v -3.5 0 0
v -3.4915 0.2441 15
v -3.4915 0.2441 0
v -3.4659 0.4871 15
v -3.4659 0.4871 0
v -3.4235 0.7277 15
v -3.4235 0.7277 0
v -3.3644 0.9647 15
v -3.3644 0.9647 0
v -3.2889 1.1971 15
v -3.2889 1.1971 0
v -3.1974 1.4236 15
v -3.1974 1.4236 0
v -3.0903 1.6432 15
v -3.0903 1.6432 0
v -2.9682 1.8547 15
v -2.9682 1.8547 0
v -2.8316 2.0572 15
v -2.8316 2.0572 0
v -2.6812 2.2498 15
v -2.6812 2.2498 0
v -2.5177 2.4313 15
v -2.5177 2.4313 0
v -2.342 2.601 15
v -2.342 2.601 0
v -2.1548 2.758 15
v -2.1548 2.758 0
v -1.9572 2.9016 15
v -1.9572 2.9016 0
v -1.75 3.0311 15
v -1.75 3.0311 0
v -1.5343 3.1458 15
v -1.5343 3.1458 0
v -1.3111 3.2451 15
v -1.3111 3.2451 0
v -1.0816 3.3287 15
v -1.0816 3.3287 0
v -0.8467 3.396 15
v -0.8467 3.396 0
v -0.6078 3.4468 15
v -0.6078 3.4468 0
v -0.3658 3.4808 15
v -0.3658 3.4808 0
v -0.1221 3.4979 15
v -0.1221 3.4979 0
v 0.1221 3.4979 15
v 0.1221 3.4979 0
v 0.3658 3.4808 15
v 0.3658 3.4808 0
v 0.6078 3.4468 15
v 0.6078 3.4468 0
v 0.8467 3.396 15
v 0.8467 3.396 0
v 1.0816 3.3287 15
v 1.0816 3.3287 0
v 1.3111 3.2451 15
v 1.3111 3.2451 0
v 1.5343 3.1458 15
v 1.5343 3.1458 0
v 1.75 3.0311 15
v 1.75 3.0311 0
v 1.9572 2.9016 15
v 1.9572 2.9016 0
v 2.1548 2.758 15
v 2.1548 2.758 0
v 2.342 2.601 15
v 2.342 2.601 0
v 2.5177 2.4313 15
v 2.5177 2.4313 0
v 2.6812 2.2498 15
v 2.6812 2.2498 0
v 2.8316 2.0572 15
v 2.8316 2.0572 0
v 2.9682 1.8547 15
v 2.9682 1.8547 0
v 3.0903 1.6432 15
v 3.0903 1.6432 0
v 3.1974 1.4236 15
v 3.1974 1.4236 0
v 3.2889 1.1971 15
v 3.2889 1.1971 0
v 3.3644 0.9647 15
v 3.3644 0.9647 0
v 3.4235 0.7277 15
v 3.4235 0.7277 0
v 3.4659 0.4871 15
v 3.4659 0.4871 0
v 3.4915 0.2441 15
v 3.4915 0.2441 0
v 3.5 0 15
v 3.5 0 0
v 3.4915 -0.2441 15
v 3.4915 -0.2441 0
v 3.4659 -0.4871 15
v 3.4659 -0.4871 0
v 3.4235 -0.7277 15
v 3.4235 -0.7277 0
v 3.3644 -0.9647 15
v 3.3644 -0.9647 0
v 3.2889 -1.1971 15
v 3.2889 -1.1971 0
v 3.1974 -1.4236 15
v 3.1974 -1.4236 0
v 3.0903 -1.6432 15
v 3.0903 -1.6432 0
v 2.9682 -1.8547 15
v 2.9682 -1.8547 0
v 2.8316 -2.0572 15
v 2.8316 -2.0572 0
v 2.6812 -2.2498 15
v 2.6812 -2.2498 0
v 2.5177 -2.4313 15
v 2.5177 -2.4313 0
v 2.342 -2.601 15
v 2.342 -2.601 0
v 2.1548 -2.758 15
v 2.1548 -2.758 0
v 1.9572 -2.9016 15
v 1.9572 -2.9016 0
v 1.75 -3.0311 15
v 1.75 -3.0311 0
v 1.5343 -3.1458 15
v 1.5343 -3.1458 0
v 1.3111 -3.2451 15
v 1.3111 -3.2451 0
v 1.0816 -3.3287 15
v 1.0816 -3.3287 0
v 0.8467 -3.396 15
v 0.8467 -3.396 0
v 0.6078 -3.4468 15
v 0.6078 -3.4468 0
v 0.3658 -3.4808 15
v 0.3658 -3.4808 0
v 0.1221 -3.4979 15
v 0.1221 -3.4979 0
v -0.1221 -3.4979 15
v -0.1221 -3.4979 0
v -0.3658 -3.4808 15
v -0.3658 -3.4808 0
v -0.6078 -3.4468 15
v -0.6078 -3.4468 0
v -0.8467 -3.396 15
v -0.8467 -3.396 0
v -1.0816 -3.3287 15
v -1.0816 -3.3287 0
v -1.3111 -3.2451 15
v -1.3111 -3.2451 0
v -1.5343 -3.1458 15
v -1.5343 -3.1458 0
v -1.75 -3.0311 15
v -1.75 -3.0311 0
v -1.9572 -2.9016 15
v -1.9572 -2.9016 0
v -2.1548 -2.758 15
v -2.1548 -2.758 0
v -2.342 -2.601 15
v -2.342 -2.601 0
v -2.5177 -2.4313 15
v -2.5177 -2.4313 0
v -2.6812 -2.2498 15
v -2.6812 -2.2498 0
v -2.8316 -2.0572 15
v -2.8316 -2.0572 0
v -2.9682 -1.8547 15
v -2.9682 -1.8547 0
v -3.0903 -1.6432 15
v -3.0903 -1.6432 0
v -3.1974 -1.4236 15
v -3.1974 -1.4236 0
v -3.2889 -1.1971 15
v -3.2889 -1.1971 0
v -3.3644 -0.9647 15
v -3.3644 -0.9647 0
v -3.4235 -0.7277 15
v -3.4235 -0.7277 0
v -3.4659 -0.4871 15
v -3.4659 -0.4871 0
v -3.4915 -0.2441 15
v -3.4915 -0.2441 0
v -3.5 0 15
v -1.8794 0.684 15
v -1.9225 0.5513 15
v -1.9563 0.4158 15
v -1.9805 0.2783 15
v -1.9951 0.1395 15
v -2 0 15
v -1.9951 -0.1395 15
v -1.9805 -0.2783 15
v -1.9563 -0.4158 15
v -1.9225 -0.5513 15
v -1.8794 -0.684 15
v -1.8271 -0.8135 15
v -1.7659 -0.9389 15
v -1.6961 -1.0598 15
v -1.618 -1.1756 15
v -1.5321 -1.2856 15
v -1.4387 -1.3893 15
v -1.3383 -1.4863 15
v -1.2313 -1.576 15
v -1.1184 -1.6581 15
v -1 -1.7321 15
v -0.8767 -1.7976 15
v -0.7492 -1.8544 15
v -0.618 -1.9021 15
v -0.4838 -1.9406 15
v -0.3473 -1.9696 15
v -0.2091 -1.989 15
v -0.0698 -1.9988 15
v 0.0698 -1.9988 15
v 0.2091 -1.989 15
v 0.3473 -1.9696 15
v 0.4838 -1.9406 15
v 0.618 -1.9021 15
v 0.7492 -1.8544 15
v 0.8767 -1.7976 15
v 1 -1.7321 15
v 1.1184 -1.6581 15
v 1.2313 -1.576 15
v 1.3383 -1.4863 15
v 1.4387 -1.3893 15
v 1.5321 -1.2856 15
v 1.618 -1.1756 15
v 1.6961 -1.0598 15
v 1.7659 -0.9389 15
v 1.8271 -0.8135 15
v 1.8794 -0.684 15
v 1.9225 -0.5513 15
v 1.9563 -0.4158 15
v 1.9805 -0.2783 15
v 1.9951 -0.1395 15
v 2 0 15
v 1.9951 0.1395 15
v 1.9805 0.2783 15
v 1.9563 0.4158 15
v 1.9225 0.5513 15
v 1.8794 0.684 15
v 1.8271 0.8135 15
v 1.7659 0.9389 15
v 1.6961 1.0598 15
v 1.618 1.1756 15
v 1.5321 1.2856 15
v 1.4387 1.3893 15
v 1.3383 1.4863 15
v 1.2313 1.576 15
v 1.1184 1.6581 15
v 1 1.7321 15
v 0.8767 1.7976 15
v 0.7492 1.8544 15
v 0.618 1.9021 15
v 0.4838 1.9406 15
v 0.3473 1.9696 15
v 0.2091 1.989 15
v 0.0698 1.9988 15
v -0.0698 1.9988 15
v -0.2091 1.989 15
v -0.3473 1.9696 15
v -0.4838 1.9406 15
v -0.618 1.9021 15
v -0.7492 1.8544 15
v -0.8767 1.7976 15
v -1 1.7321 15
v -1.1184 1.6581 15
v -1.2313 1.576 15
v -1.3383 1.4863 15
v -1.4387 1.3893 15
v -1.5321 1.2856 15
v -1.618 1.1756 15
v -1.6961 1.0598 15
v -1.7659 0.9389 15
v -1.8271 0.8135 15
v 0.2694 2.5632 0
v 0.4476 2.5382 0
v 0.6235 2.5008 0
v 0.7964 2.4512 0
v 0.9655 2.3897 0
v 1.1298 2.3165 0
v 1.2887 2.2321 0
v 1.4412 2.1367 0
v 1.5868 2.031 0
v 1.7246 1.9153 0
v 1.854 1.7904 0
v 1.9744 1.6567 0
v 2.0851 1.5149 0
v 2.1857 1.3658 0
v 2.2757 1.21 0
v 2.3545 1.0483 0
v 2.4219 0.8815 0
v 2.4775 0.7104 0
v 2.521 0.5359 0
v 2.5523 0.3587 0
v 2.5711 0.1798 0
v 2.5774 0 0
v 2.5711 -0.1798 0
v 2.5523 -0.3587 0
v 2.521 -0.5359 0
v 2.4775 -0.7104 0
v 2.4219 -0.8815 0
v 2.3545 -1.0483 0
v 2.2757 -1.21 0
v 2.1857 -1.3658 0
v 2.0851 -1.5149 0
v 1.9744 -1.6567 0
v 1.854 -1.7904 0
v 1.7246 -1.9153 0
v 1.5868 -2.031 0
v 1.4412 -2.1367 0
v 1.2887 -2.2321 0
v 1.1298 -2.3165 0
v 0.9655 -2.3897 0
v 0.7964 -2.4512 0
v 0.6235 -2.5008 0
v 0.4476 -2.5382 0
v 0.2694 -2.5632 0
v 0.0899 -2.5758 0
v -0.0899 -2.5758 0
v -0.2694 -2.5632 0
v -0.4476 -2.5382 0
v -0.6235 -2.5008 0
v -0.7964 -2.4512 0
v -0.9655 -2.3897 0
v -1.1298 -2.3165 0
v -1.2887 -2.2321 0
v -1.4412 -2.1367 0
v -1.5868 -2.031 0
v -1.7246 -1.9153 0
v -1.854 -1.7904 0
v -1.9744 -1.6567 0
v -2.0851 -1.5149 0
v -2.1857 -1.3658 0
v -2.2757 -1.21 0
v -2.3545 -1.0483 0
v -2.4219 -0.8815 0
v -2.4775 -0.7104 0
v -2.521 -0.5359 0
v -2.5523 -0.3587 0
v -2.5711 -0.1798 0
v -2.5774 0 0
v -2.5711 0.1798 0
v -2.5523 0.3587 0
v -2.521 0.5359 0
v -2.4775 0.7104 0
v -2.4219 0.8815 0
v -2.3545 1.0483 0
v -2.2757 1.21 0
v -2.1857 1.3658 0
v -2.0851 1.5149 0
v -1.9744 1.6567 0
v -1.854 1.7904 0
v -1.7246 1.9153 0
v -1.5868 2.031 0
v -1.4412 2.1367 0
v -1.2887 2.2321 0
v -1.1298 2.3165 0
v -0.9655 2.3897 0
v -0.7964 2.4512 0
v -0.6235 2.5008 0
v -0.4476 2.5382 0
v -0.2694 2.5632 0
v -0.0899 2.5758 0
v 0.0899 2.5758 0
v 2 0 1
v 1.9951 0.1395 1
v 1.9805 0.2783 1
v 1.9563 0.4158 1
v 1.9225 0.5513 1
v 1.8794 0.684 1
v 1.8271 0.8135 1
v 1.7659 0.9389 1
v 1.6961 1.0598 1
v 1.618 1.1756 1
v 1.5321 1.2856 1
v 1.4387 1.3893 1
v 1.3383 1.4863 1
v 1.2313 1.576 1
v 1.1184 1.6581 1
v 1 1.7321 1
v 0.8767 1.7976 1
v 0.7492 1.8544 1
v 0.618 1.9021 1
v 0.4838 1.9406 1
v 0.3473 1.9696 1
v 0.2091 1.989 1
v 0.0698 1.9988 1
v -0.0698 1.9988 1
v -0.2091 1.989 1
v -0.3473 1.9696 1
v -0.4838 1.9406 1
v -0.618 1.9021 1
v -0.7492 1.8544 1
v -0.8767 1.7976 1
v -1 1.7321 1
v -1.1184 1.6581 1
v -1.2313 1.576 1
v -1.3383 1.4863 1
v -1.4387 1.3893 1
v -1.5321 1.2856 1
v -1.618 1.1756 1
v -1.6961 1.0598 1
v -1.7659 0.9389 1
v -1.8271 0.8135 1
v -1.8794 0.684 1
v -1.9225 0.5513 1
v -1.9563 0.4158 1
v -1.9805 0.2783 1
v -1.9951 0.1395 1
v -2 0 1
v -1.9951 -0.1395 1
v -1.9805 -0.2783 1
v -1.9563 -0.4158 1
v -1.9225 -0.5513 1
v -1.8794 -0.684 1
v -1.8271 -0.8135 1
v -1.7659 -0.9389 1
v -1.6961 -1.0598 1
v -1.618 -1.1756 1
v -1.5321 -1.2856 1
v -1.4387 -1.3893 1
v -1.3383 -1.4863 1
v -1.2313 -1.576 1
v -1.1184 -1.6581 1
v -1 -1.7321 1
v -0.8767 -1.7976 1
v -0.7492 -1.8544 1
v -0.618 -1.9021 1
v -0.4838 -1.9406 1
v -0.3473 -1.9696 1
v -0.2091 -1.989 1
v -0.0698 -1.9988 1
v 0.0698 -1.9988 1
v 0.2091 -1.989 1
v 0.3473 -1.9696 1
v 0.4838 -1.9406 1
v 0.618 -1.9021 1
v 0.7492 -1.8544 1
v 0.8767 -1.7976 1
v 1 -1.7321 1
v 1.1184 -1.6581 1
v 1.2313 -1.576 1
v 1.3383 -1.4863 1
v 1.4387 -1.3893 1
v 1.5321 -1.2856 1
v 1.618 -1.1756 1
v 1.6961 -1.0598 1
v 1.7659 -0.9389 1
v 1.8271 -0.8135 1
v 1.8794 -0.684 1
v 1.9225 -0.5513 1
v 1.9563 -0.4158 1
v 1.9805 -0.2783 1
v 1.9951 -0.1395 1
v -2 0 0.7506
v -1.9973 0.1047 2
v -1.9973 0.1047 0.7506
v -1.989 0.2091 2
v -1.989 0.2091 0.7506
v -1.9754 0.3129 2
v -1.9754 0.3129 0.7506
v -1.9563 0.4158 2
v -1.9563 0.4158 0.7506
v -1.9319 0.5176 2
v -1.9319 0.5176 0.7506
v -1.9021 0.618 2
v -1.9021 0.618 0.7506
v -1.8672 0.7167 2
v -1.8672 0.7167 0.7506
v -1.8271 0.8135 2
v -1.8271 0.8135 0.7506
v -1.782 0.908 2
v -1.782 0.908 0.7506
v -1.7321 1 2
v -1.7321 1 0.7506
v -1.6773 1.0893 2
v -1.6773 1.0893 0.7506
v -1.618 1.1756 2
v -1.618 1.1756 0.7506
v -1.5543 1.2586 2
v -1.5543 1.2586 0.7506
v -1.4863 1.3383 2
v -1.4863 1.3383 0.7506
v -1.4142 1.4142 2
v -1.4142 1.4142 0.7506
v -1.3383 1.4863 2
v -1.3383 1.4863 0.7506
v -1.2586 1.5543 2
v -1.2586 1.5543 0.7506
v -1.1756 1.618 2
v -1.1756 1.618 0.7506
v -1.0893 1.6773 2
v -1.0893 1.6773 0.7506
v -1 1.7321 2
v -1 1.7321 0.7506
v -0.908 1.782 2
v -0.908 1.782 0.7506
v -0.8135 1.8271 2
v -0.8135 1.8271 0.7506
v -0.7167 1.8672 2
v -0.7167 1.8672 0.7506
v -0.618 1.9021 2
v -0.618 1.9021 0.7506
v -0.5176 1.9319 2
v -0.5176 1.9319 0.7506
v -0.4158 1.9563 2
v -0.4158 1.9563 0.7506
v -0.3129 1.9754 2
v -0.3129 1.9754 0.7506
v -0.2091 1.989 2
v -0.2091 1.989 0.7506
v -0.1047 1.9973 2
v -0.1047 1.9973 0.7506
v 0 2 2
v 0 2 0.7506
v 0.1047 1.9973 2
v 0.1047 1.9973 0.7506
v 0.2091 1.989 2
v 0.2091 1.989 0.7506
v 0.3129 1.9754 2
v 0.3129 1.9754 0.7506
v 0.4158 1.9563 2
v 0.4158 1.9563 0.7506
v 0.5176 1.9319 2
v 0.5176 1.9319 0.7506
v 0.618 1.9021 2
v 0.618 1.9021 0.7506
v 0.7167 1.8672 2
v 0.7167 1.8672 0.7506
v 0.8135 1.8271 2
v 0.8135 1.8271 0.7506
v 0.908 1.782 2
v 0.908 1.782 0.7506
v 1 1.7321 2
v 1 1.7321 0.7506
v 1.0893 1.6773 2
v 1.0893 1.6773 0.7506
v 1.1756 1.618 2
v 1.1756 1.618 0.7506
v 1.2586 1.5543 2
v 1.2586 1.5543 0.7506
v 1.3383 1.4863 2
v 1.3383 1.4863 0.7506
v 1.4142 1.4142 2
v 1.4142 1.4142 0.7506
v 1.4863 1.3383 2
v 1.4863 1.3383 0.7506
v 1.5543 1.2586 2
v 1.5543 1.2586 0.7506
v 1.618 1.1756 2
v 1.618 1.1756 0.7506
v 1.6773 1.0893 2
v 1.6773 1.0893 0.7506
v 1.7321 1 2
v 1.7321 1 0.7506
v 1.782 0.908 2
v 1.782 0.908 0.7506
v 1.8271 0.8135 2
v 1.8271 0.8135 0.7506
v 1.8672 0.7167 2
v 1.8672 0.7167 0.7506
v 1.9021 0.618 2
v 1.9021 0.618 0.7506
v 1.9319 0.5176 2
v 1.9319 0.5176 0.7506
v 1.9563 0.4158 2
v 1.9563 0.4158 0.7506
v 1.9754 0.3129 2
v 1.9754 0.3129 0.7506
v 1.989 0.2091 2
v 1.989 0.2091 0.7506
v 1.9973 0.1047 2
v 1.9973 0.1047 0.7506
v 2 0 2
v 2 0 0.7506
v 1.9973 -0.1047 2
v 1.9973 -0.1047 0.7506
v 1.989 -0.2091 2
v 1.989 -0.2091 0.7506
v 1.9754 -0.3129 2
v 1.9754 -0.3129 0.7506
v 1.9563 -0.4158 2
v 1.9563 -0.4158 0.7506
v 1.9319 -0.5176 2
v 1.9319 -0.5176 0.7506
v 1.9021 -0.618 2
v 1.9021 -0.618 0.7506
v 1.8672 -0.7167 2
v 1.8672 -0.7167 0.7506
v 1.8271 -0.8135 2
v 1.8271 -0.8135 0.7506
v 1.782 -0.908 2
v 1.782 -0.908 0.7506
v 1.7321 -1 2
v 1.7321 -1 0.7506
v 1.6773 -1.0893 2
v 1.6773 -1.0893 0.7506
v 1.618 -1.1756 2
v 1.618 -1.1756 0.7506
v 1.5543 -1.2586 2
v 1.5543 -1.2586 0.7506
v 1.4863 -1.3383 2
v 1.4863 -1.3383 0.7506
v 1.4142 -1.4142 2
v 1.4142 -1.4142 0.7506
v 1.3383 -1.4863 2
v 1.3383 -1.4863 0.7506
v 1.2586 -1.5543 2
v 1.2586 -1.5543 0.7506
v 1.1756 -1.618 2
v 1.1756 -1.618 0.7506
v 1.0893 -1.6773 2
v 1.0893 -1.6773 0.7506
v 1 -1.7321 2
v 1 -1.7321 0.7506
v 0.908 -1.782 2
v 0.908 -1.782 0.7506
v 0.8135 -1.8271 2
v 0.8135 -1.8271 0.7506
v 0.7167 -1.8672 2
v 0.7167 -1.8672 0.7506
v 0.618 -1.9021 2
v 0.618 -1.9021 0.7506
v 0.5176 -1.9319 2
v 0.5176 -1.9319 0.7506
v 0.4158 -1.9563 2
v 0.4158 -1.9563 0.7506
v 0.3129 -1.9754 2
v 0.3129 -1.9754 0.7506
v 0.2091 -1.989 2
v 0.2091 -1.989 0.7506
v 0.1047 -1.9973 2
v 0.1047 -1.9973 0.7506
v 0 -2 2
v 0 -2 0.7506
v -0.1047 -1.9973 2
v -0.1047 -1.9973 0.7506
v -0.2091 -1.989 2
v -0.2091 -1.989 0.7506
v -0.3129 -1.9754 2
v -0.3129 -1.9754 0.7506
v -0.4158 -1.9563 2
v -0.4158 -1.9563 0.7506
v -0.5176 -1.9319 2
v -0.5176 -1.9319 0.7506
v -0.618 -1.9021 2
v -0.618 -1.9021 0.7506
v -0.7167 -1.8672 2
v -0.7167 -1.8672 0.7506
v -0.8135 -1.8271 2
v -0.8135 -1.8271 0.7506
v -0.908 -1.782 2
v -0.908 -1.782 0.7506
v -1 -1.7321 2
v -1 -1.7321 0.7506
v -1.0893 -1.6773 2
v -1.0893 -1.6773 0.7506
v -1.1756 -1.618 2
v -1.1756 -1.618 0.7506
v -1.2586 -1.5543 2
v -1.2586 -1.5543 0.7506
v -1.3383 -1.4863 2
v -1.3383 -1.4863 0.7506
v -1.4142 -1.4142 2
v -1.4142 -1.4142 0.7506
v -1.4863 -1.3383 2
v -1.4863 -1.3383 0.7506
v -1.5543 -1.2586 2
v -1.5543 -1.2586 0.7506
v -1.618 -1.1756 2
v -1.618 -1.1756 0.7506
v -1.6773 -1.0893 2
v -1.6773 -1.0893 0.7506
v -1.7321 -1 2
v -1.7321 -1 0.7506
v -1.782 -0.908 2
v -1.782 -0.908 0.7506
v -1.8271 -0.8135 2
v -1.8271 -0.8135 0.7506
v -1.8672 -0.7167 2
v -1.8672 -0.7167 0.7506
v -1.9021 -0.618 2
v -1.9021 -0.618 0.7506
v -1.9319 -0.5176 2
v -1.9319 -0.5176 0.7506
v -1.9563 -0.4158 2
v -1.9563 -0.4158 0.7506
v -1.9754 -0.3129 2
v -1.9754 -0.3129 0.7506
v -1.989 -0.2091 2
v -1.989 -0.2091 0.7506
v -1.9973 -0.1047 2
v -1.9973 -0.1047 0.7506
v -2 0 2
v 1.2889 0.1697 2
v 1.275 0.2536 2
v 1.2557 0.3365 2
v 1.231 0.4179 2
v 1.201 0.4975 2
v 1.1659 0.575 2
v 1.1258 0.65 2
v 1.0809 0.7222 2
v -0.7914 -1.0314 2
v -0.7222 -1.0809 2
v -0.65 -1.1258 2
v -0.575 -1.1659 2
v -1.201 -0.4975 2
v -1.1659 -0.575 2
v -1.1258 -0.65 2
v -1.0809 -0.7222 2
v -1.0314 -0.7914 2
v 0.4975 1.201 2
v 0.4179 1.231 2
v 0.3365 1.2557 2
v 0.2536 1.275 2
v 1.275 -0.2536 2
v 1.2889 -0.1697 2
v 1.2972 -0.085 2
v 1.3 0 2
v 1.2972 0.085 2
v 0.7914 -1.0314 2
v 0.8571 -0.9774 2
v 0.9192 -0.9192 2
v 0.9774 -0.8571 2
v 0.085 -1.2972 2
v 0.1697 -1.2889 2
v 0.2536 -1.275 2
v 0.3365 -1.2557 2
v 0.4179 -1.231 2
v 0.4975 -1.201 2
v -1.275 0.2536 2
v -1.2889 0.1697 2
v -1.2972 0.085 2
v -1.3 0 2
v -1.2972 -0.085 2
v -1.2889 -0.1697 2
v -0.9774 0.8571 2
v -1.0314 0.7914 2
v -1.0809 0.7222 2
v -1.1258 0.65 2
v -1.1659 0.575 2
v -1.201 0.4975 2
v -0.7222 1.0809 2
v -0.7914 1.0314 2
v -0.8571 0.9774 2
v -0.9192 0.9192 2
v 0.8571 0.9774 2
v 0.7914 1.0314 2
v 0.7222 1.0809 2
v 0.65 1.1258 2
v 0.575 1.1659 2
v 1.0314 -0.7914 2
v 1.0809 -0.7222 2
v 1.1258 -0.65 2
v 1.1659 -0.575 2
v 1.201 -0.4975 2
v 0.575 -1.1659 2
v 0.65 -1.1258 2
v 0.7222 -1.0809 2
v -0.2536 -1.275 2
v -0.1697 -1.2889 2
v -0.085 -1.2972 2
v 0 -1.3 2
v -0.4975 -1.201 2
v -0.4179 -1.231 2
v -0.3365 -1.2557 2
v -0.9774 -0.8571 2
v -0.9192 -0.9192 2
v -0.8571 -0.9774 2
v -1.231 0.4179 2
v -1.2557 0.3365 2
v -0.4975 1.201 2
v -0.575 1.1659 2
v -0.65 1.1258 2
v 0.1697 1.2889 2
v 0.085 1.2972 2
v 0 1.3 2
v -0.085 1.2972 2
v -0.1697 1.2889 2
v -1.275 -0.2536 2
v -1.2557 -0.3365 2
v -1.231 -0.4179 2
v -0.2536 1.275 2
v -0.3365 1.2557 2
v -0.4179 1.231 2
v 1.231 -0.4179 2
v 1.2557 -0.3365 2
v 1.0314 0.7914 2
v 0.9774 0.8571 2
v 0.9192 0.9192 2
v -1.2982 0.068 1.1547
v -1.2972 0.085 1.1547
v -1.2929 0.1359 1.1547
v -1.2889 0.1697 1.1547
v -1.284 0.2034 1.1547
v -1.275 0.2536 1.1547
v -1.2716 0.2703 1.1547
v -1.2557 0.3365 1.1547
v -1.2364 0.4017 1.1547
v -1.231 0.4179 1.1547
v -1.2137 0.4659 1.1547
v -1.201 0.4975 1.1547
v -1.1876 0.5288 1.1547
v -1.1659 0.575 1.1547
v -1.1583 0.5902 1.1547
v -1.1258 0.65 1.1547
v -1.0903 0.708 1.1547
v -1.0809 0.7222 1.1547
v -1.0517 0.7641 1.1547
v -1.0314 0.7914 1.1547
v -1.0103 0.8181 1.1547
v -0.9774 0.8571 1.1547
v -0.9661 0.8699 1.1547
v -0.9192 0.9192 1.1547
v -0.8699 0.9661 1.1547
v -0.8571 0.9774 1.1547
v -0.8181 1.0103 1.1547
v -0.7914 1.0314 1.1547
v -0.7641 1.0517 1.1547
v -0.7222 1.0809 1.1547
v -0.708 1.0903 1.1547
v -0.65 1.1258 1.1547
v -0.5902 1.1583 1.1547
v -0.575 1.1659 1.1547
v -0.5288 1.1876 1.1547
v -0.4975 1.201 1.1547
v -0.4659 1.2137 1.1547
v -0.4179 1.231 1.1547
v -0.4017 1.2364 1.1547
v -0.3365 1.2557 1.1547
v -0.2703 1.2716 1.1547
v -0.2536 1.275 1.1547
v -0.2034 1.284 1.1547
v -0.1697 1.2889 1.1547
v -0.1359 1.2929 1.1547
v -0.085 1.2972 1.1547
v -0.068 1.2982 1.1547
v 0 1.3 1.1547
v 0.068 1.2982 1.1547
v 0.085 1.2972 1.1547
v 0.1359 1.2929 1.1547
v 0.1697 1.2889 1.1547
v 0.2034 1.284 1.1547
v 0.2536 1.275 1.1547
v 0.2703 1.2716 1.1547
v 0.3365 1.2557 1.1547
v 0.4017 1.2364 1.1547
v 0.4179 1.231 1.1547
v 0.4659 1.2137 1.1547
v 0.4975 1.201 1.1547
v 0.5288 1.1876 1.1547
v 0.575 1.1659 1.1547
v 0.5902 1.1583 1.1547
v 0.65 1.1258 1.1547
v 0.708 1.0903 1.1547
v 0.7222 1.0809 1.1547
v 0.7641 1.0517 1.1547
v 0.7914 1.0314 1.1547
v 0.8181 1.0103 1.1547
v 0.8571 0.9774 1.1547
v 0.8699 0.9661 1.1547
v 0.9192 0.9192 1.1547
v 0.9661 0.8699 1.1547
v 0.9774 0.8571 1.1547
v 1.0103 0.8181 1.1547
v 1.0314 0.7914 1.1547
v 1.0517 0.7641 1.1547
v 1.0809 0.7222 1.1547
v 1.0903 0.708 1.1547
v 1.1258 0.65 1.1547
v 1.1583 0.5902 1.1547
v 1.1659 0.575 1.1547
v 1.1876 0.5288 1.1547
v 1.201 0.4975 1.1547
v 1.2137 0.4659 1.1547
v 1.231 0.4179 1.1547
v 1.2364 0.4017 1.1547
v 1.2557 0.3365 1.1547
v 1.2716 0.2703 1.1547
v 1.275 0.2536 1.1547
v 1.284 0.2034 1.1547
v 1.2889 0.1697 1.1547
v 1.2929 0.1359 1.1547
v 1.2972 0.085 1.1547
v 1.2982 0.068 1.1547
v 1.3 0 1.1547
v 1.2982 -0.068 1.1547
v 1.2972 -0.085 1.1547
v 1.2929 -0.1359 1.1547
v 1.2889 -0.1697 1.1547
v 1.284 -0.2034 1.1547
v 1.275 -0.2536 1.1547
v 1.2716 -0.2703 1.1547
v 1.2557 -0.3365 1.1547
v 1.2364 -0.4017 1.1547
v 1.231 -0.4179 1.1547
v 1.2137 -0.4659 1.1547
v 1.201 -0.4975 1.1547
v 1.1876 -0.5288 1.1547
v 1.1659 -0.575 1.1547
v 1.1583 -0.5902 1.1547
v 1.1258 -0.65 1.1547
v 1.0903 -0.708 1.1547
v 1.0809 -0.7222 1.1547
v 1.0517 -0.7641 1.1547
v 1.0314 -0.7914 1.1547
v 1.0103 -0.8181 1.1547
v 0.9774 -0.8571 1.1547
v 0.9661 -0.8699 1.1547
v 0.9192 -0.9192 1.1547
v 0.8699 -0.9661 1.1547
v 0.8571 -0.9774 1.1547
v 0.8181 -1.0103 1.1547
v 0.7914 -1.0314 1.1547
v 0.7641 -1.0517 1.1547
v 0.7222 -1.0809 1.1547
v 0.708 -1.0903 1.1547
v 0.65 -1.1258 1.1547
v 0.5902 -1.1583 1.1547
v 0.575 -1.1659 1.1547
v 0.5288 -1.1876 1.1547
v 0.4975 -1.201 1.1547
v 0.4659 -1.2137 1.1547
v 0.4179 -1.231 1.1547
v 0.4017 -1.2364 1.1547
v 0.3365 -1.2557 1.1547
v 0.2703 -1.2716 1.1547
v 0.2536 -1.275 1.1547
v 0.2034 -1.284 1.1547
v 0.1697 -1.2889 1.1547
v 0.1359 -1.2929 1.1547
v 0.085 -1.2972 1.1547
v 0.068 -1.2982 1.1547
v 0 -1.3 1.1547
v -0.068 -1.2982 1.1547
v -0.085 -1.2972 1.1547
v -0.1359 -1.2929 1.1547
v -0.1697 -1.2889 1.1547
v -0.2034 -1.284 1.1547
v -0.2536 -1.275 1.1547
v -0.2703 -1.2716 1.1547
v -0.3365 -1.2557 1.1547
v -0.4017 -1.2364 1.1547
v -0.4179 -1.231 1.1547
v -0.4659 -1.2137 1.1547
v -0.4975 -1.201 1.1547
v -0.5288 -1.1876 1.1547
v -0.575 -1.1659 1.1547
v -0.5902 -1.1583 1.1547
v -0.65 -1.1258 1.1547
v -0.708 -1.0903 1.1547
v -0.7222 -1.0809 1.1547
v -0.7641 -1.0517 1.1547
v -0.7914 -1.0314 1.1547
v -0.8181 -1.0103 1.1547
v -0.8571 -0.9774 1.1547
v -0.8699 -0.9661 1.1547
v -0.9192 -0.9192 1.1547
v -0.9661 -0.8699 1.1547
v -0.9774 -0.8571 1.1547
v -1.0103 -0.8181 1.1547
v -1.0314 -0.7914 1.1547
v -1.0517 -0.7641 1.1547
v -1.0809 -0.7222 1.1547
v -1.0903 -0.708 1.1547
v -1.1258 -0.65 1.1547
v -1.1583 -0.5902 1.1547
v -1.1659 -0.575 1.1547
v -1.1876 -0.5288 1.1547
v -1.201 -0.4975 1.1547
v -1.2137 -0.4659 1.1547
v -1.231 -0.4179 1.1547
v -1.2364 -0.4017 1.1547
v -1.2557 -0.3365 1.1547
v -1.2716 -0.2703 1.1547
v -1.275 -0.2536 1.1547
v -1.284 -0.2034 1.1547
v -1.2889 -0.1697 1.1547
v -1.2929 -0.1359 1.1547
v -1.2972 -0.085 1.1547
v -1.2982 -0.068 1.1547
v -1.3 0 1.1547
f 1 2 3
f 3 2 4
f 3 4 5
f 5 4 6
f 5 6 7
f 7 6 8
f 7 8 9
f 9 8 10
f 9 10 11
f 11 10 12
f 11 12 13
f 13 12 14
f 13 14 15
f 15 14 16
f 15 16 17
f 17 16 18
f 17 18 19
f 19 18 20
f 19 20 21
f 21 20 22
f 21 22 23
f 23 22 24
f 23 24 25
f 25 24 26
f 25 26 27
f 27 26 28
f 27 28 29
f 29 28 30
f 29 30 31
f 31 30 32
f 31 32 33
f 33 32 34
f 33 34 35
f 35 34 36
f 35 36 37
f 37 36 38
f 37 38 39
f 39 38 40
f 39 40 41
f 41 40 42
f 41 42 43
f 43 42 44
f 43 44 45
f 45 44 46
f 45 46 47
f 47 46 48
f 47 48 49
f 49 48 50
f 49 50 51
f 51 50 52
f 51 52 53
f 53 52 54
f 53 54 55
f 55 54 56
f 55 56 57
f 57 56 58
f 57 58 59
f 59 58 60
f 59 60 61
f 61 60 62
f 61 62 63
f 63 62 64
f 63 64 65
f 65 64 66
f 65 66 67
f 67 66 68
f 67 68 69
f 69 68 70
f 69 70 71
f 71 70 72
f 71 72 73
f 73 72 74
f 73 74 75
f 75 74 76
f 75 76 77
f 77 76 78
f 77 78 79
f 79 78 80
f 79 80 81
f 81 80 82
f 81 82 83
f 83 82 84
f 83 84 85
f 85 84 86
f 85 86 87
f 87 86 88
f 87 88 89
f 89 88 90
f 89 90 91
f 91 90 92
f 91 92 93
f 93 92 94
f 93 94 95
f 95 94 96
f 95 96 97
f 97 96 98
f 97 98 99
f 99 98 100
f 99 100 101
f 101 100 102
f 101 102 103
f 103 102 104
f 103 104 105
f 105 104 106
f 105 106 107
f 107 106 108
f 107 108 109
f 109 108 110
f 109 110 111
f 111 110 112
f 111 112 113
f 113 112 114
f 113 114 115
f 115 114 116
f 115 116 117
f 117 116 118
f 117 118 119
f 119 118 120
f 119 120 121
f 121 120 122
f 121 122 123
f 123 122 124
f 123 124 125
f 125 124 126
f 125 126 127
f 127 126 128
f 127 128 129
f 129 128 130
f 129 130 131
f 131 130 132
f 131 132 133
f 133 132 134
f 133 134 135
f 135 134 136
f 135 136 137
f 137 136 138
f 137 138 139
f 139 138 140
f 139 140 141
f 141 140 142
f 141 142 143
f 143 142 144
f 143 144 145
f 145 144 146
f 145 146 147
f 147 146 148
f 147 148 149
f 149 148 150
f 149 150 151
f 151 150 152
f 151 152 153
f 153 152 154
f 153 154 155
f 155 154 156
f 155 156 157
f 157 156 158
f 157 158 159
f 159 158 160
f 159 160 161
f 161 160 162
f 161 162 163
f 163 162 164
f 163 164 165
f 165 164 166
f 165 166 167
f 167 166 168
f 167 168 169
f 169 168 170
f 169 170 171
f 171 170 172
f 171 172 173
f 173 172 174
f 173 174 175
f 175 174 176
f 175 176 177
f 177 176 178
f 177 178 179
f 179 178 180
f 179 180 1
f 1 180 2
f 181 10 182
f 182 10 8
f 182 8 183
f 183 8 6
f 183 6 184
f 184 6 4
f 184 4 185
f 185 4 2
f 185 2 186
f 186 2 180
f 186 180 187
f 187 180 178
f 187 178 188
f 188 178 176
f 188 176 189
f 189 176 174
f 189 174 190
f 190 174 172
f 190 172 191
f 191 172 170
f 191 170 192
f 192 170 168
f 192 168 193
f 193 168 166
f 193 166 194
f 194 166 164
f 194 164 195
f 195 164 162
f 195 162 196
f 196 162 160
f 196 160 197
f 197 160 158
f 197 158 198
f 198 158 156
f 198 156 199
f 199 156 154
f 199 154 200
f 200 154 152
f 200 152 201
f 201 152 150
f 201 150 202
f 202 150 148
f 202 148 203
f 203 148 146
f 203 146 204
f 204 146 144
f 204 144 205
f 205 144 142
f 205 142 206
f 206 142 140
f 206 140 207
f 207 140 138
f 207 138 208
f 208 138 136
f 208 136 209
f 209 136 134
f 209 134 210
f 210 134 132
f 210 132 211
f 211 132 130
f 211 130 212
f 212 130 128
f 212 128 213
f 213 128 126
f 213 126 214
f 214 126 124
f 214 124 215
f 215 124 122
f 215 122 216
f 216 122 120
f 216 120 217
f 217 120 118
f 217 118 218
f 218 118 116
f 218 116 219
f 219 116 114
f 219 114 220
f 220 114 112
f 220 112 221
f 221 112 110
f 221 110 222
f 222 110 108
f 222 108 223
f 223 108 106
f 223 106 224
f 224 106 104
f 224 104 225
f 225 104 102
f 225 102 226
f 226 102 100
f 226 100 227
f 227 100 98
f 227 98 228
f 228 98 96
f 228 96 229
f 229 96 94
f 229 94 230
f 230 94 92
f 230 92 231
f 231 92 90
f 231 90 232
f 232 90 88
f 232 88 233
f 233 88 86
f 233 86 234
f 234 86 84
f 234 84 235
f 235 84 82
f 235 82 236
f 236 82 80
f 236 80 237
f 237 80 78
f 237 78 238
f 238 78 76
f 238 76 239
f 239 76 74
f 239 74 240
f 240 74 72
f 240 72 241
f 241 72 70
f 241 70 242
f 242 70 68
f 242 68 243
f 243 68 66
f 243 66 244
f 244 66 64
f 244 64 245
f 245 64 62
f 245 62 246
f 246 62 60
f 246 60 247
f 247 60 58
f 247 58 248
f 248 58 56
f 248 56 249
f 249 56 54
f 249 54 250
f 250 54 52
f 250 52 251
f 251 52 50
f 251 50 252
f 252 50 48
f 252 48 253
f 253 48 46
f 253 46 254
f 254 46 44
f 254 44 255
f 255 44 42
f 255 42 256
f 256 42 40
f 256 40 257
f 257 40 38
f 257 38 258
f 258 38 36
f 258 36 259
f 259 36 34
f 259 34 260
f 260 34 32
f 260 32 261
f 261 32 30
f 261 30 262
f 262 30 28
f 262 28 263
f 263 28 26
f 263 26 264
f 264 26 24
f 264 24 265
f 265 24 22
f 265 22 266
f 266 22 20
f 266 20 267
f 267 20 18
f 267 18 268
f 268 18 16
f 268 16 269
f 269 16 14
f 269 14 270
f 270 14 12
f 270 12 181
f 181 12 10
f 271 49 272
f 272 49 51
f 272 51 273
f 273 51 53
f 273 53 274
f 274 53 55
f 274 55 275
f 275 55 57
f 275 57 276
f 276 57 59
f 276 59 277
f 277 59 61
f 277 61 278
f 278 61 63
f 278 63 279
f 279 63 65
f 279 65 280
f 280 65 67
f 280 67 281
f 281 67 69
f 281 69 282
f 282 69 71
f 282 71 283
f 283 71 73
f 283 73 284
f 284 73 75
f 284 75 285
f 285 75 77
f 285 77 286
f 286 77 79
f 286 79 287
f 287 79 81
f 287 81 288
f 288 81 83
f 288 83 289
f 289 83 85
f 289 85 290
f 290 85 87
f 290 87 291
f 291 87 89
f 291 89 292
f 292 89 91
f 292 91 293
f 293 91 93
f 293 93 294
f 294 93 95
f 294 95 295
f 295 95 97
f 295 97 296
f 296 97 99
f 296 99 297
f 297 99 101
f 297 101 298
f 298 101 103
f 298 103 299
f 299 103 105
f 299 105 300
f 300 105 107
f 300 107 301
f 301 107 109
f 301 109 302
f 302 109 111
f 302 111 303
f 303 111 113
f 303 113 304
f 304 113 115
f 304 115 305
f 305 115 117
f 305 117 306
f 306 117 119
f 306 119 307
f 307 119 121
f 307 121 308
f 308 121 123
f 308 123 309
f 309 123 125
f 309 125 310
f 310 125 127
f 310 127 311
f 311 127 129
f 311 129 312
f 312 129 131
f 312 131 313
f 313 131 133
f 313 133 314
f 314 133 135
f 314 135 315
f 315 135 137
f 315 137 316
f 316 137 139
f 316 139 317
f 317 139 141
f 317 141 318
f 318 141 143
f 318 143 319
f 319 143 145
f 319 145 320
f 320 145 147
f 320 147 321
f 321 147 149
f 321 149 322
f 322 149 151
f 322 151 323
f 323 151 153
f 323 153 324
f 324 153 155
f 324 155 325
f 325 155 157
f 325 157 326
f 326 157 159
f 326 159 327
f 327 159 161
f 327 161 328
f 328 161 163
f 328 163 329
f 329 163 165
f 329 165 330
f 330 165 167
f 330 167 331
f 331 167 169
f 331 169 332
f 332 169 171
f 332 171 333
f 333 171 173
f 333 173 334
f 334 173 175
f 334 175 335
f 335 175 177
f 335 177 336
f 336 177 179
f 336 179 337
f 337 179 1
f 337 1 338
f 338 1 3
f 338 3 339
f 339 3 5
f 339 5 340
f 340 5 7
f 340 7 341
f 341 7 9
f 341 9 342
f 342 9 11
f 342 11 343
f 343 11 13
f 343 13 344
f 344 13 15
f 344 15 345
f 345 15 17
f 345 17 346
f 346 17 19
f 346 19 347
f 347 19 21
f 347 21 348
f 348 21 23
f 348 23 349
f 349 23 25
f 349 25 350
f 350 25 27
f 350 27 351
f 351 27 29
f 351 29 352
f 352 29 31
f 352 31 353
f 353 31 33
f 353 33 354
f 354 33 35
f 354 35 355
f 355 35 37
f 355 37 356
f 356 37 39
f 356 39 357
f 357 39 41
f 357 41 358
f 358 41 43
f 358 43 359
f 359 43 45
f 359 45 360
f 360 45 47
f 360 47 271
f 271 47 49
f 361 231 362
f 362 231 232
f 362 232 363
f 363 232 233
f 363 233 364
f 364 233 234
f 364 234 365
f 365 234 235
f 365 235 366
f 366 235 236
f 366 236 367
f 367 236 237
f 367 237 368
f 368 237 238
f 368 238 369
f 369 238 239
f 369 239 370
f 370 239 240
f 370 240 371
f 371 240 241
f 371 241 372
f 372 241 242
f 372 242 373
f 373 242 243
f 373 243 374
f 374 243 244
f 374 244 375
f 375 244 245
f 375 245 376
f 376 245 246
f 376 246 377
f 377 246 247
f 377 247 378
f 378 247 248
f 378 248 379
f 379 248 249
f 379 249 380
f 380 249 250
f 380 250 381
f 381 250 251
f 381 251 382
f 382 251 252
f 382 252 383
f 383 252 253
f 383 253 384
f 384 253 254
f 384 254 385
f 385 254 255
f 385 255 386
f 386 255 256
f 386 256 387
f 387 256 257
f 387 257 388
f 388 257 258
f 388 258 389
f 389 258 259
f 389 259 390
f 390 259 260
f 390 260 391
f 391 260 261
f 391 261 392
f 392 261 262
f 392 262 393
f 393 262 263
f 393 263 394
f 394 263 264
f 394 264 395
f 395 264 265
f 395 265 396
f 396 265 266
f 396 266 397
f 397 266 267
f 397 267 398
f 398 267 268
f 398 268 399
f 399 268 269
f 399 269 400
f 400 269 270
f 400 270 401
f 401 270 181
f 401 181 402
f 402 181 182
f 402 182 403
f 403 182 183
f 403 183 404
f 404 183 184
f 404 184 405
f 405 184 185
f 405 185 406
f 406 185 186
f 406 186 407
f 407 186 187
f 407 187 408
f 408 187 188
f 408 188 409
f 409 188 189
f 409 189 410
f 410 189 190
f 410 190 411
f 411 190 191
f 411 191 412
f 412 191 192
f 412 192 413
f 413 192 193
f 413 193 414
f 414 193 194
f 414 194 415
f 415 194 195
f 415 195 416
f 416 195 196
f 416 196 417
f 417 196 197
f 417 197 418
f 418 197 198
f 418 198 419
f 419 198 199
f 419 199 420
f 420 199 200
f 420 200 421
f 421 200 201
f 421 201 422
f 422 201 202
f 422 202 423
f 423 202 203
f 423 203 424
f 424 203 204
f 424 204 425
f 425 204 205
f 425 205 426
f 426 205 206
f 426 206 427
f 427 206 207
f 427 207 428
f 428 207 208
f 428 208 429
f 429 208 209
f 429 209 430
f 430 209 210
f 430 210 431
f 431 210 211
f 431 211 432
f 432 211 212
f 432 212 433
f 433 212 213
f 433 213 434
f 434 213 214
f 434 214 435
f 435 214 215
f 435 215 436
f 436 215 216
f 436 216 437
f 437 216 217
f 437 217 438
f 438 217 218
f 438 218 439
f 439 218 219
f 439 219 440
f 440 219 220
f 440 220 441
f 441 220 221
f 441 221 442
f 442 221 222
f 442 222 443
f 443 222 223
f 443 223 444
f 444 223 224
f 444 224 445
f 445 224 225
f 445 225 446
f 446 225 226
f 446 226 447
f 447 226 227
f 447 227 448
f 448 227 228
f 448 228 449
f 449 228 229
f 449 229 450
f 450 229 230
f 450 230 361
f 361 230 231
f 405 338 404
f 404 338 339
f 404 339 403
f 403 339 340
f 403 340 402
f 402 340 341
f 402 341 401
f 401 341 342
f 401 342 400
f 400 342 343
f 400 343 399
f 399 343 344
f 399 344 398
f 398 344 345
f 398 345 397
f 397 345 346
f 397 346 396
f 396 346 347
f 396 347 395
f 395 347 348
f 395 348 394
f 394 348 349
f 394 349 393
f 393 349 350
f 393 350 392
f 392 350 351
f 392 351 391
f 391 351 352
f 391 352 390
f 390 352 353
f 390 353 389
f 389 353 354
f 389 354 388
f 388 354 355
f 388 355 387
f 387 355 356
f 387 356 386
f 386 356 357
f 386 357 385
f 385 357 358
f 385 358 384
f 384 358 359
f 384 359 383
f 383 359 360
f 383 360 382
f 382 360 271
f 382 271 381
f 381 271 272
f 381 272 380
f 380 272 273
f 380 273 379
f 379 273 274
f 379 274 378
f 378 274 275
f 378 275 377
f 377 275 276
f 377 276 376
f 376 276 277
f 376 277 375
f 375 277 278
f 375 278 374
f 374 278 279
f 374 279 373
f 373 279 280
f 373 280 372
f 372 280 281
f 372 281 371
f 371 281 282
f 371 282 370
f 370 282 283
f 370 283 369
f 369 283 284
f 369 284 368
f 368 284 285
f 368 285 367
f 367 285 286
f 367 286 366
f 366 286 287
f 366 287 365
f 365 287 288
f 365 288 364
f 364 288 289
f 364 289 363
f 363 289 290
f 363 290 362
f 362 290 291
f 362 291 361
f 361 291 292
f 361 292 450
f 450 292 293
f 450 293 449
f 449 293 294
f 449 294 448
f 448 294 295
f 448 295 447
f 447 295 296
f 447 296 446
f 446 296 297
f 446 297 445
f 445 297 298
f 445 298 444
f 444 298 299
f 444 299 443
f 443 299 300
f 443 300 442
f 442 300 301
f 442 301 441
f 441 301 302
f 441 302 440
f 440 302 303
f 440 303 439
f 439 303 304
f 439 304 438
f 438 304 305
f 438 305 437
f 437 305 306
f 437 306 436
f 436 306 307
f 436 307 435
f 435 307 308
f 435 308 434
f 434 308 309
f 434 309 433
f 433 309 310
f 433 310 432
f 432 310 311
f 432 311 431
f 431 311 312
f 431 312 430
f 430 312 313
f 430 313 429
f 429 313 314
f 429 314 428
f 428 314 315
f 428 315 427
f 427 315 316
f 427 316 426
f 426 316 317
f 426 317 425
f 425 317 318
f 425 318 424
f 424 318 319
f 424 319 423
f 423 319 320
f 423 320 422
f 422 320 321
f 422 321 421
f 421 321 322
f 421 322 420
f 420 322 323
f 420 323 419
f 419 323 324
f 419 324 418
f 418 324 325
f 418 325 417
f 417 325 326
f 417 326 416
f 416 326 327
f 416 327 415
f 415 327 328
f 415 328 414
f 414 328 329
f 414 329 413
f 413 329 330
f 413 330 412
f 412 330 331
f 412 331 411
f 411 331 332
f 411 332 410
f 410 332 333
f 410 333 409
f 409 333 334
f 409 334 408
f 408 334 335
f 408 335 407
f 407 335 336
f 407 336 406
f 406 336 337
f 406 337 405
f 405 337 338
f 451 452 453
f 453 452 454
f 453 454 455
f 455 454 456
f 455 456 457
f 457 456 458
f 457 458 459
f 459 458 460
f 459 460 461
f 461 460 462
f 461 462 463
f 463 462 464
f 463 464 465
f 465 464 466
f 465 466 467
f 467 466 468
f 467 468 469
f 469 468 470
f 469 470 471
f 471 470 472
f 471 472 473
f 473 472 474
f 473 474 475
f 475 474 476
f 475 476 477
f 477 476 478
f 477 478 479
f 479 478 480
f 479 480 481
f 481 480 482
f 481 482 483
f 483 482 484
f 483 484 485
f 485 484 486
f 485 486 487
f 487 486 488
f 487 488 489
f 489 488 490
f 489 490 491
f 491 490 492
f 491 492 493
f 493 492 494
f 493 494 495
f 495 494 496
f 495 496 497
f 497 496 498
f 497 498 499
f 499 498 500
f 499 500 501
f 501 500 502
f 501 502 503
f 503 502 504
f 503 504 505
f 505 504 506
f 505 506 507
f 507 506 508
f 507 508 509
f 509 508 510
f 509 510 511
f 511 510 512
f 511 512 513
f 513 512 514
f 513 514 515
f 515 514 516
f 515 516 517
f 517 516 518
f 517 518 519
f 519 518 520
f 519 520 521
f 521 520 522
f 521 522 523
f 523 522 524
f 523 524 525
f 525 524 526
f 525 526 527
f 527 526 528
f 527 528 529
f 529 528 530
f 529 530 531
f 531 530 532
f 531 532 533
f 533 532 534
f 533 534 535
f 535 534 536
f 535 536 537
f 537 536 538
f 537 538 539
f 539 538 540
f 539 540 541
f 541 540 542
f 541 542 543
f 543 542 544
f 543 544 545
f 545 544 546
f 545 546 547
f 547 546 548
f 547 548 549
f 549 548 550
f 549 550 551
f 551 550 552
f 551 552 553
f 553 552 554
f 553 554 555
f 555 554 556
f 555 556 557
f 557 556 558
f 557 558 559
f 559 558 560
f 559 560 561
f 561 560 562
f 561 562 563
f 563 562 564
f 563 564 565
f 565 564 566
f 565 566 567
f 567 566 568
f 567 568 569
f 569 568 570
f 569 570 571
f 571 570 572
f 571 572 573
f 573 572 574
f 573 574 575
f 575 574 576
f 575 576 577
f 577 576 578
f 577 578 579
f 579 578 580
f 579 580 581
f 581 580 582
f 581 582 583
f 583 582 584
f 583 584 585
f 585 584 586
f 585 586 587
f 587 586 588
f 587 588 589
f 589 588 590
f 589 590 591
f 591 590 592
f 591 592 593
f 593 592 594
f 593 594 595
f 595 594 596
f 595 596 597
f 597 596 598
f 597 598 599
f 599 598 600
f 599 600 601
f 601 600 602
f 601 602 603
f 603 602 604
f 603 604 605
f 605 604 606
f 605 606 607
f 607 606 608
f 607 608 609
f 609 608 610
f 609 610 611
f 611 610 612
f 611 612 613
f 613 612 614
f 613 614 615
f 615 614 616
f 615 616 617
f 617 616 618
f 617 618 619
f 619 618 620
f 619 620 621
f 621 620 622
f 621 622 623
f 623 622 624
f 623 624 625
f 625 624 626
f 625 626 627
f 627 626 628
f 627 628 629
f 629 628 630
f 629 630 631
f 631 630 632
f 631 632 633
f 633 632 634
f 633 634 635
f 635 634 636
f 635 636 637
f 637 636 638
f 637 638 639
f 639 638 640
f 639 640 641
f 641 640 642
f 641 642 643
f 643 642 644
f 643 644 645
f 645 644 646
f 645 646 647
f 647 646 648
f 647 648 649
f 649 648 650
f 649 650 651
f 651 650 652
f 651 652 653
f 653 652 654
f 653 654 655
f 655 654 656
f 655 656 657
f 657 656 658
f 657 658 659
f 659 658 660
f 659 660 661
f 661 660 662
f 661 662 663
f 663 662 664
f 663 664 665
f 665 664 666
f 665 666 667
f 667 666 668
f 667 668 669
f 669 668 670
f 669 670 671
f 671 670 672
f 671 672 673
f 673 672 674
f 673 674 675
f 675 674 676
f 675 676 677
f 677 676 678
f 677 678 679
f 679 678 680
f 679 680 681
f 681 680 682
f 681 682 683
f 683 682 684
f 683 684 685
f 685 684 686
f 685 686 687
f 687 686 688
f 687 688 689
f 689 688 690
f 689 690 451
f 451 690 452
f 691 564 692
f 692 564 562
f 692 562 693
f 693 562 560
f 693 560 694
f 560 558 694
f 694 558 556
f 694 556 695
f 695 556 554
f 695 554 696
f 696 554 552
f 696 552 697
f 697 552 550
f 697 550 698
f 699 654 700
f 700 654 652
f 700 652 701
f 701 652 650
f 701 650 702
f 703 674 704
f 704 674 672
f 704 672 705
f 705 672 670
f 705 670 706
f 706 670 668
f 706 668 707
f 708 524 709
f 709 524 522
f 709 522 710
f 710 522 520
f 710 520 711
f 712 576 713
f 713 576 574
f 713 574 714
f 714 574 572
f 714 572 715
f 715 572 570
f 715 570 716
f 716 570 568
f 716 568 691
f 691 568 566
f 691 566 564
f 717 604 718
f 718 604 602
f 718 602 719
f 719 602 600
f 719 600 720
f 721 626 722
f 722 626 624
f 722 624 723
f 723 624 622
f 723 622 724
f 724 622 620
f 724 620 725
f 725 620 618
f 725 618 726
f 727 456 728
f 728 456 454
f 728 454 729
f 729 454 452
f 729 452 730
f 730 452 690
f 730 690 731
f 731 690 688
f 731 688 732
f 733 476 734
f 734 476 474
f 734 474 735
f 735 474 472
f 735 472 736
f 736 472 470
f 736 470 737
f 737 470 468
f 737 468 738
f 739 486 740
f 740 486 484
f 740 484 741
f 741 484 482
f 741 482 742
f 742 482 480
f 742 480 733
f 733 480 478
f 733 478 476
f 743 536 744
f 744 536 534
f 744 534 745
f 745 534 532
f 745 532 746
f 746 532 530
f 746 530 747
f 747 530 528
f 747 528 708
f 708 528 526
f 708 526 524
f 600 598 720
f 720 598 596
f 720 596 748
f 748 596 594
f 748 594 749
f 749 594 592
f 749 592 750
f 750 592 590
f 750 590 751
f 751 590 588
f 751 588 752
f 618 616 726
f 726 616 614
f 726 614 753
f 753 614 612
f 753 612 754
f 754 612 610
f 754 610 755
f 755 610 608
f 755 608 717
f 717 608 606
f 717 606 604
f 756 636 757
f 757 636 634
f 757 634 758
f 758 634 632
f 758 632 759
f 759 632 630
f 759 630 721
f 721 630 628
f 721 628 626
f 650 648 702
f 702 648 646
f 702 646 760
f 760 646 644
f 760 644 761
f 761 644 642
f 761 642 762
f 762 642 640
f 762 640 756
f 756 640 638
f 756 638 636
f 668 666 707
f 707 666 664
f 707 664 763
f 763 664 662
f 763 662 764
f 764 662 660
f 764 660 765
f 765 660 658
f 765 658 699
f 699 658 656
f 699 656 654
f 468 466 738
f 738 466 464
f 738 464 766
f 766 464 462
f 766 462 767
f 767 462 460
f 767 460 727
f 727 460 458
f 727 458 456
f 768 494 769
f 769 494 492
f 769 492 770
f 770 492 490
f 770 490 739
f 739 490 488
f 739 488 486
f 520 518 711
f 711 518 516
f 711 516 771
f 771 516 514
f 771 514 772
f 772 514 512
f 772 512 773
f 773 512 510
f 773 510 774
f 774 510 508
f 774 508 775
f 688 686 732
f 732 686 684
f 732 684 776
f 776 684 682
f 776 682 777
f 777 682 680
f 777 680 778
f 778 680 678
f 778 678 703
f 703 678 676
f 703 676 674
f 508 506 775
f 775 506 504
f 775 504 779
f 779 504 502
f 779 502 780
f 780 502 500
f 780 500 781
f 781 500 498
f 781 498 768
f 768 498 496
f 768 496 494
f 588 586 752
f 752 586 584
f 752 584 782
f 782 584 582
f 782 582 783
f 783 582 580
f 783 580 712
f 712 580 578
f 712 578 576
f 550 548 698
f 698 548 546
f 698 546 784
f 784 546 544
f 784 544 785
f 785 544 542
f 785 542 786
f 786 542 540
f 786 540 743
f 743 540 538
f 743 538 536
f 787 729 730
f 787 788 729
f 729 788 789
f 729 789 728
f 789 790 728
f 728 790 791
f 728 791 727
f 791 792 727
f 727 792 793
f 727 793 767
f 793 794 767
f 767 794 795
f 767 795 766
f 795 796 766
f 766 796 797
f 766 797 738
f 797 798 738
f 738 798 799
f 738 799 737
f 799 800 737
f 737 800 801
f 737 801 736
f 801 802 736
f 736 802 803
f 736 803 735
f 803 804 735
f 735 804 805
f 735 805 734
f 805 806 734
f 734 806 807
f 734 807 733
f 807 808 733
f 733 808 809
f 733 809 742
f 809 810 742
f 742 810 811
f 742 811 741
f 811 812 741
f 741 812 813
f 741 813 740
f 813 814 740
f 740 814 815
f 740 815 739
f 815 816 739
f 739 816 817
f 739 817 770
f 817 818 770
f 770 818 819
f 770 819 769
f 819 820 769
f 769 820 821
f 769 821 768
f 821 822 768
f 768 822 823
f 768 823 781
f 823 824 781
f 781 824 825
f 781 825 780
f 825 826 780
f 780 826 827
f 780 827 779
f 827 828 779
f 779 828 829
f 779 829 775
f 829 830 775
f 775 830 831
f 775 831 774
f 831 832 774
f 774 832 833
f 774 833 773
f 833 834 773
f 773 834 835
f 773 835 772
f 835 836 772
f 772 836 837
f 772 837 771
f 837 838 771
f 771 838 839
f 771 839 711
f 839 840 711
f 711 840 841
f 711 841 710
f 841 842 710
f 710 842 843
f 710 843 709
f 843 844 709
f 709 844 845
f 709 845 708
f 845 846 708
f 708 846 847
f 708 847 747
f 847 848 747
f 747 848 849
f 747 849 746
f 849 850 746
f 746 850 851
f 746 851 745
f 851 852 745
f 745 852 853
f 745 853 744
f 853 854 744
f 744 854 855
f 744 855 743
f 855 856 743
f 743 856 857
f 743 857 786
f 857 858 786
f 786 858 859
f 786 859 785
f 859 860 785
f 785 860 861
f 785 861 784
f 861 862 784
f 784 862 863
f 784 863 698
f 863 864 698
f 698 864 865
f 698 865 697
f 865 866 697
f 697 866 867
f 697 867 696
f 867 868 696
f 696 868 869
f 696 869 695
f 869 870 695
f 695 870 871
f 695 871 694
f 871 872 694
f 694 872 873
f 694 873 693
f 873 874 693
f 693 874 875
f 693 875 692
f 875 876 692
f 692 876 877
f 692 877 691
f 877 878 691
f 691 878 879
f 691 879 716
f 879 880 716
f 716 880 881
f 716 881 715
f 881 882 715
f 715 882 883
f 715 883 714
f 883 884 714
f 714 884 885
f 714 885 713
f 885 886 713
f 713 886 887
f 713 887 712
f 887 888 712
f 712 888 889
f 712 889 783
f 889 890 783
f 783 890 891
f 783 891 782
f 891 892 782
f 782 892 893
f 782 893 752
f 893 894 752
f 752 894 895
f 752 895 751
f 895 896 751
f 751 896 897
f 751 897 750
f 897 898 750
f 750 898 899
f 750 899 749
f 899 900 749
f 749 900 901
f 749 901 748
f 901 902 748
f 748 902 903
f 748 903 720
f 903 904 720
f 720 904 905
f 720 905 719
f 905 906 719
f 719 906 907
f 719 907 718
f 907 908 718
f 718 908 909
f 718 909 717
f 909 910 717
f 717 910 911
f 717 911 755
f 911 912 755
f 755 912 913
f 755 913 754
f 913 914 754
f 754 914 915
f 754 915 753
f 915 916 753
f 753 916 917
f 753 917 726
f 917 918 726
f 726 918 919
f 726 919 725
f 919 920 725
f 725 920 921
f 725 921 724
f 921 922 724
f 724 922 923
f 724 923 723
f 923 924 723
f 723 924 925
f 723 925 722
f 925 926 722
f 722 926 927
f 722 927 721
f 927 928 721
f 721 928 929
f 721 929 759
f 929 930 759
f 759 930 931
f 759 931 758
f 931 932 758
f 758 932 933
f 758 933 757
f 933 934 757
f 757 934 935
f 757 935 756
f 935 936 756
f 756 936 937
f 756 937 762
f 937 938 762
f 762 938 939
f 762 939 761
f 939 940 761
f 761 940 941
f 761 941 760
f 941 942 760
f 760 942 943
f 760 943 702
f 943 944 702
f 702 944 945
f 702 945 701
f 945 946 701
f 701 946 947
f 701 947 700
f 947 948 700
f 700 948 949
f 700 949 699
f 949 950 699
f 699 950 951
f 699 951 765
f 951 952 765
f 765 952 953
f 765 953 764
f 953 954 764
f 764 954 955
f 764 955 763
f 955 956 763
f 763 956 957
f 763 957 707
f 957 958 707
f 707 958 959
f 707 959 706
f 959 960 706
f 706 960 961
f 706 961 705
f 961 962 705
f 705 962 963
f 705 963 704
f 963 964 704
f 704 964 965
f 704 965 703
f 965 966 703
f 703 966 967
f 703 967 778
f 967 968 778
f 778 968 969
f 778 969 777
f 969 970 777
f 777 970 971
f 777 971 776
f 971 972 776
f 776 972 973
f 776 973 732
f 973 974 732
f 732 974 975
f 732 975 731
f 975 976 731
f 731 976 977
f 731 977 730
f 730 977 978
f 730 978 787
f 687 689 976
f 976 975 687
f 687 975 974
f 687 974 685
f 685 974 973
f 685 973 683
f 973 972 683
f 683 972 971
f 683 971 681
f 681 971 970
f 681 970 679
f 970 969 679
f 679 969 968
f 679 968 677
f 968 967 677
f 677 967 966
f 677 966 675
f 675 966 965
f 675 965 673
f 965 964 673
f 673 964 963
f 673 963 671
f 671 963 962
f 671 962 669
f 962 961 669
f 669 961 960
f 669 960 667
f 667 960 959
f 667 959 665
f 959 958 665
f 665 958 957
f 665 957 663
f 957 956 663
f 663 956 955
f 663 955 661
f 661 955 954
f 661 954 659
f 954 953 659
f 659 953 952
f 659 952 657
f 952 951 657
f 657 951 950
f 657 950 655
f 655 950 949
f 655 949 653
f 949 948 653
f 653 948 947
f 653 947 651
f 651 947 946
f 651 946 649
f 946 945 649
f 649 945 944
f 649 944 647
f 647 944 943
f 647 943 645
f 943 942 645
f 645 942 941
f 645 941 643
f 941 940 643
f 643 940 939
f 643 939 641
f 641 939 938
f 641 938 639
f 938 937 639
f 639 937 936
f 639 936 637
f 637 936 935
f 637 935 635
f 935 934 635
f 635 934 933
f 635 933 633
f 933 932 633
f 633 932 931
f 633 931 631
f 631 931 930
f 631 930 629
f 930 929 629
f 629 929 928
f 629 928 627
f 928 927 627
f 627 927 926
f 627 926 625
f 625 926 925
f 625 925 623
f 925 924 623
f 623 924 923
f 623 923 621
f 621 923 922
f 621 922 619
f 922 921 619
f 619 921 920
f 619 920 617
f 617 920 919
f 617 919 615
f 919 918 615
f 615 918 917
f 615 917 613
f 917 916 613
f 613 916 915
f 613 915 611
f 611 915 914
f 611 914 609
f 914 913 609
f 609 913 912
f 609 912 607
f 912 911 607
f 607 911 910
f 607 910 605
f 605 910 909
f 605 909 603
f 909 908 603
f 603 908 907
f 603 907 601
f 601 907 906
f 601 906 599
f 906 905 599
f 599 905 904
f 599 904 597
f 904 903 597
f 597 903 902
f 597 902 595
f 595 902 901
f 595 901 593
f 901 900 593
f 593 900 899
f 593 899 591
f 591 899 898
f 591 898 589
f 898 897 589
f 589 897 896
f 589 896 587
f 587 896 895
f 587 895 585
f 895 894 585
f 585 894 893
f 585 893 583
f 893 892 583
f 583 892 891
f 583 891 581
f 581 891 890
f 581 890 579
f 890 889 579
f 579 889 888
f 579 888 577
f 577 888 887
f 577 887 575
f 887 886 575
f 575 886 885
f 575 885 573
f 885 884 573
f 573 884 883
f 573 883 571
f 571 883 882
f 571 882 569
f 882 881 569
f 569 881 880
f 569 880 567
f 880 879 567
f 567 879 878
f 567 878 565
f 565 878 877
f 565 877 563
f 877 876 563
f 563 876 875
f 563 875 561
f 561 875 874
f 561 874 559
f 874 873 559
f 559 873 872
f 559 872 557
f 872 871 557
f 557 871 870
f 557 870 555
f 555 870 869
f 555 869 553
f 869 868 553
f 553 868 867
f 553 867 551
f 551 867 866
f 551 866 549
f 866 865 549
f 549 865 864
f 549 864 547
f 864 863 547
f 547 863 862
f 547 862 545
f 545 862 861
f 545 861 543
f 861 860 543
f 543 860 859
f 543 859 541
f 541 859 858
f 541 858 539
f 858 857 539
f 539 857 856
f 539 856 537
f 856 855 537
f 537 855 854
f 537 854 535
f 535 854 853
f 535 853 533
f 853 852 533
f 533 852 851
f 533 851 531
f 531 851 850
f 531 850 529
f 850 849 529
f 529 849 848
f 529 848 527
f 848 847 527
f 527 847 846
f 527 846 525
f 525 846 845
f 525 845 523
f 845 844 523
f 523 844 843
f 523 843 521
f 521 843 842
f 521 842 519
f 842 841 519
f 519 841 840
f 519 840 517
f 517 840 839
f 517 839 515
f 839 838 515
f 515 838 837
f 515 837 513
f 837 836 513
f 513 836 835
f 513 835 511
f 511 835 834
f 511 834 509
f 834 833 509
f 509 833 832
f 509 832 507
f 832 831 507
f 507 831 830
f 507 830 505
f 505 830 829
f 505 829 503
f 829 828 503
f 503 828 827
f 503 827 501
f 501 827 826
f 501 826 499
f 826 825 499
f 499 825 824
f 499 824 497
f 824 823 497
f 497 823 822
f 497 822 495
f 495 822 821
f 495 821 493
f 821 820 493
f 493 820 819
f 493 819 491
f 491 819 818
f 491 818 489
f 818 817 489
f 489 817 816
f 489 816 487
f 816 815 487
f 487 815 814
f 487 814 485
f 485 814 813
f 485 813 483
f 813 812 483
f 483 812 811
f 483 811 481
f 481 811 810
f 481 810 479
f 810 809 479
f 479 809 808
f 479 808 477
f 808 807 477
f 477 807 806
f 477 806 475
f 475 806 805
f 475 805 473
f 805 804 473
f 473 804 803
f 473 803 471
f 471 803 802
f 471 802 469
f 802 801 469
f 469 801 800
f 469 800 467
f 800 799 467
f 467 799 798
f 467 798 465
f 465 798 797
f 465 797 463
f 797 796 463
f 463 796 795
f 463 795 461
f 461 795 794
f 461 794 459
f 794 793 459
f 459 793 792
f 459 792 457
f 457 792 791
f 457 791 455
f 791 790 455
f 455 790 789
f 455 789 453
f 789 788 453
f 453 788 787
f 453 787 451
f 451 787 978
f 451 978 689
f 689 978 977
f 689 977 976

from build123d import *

# Parameters (mm, degrees)
SCHIZZO1_R                   = 3.5
ESTRUSIONE_ESTRUSIONE1_DEPTH = 15
SCHIZZO2_R                   = 2
TAGLIO_ESTRUSIONE1_DEPTH     = 16.795568999
SCHIZZO3_R                   = 2
SCHIZZO3_R_2                 = 1.3
ESTRUSIONE_ESTRUSIONE2_DEPTH = 2
SMUSSO1_SIZE                 = 1.154700538
SMUSSO1_SIZE_2               = 2
SMUSSO2_SIZE                 = 1
SMUSSO2_SIZE2                = 0.577350269


with BuildPart() as part:
    # Schizzo1 → Estrusione-Estrusione1 (new body)
    with BuildSketch(Plane.XY):
        Circle(SCHIZZO1_R)
    extrude(amount=ESTRUSIONE_ESTRUSIONE1_DEPTH)

    # Schizzo2 → Taglio-Estrusione1 (cut, through all)
    with BuildSketch(Plane.XY.offset(15)):
        Circle(SCHIZZO2_R)
    extrude(amount=-TAGLIO_ESTRUSIONE1_DEPTH, mode=Mode.SUBTRACT)

    # Smusso2
    smusso2_edges = [part.edges().sort_by_distance(p)[0] for p in [
        (-2, 0, 0),
    ]]
    smusso2_side = [part.faces().sort_by_distance(p)[0] for p in [
        (-2, 0, 7.5),
    ]]
    chamfer(smusso2_edges, length=SMUSSO2_SIZE, length2=SMUSSO2_SIZE2, reference=smusso2_side[0])


with BuildPart() as body_2:
    # Schizzo3 → Estrusione-Estrusione2 (new body)
    with BuildSketch(Plane(origin=(0, 0, 0), x_dir=(-1, 0, 0), z_dir=(0, 0, -1))):
        Circle(SCHIZZO3_R)
        Circle(SCHIZZO3_R_2, mode=Mode.SUBTRACT)
    extrude(amount=-ESTRUSIONE_ESTRUSIONE2_DEPTH)

    # Smusso1
    # the kernel refuses this chamfer: 2, 1.154700538 mm, written as the material it takes off along each edge
    with BuildSketch(Plane(origin=(0, 0, 0), x_dir=(-1, 0, 0), z_dir=(0, -1, 0))) as smusso1_piece_1:
        Polygon((1.3, -SMUSSO1_SIZE), (1.3 + SMUSSO1_SIZE_2, 0), (1.3, 0), align=None)
    revolve(axis=Axis((0, 0, 0), (0, 0, -1)), mode=Mode.SUBTRACT)


solid = Compound([part.part, body_2.part])
